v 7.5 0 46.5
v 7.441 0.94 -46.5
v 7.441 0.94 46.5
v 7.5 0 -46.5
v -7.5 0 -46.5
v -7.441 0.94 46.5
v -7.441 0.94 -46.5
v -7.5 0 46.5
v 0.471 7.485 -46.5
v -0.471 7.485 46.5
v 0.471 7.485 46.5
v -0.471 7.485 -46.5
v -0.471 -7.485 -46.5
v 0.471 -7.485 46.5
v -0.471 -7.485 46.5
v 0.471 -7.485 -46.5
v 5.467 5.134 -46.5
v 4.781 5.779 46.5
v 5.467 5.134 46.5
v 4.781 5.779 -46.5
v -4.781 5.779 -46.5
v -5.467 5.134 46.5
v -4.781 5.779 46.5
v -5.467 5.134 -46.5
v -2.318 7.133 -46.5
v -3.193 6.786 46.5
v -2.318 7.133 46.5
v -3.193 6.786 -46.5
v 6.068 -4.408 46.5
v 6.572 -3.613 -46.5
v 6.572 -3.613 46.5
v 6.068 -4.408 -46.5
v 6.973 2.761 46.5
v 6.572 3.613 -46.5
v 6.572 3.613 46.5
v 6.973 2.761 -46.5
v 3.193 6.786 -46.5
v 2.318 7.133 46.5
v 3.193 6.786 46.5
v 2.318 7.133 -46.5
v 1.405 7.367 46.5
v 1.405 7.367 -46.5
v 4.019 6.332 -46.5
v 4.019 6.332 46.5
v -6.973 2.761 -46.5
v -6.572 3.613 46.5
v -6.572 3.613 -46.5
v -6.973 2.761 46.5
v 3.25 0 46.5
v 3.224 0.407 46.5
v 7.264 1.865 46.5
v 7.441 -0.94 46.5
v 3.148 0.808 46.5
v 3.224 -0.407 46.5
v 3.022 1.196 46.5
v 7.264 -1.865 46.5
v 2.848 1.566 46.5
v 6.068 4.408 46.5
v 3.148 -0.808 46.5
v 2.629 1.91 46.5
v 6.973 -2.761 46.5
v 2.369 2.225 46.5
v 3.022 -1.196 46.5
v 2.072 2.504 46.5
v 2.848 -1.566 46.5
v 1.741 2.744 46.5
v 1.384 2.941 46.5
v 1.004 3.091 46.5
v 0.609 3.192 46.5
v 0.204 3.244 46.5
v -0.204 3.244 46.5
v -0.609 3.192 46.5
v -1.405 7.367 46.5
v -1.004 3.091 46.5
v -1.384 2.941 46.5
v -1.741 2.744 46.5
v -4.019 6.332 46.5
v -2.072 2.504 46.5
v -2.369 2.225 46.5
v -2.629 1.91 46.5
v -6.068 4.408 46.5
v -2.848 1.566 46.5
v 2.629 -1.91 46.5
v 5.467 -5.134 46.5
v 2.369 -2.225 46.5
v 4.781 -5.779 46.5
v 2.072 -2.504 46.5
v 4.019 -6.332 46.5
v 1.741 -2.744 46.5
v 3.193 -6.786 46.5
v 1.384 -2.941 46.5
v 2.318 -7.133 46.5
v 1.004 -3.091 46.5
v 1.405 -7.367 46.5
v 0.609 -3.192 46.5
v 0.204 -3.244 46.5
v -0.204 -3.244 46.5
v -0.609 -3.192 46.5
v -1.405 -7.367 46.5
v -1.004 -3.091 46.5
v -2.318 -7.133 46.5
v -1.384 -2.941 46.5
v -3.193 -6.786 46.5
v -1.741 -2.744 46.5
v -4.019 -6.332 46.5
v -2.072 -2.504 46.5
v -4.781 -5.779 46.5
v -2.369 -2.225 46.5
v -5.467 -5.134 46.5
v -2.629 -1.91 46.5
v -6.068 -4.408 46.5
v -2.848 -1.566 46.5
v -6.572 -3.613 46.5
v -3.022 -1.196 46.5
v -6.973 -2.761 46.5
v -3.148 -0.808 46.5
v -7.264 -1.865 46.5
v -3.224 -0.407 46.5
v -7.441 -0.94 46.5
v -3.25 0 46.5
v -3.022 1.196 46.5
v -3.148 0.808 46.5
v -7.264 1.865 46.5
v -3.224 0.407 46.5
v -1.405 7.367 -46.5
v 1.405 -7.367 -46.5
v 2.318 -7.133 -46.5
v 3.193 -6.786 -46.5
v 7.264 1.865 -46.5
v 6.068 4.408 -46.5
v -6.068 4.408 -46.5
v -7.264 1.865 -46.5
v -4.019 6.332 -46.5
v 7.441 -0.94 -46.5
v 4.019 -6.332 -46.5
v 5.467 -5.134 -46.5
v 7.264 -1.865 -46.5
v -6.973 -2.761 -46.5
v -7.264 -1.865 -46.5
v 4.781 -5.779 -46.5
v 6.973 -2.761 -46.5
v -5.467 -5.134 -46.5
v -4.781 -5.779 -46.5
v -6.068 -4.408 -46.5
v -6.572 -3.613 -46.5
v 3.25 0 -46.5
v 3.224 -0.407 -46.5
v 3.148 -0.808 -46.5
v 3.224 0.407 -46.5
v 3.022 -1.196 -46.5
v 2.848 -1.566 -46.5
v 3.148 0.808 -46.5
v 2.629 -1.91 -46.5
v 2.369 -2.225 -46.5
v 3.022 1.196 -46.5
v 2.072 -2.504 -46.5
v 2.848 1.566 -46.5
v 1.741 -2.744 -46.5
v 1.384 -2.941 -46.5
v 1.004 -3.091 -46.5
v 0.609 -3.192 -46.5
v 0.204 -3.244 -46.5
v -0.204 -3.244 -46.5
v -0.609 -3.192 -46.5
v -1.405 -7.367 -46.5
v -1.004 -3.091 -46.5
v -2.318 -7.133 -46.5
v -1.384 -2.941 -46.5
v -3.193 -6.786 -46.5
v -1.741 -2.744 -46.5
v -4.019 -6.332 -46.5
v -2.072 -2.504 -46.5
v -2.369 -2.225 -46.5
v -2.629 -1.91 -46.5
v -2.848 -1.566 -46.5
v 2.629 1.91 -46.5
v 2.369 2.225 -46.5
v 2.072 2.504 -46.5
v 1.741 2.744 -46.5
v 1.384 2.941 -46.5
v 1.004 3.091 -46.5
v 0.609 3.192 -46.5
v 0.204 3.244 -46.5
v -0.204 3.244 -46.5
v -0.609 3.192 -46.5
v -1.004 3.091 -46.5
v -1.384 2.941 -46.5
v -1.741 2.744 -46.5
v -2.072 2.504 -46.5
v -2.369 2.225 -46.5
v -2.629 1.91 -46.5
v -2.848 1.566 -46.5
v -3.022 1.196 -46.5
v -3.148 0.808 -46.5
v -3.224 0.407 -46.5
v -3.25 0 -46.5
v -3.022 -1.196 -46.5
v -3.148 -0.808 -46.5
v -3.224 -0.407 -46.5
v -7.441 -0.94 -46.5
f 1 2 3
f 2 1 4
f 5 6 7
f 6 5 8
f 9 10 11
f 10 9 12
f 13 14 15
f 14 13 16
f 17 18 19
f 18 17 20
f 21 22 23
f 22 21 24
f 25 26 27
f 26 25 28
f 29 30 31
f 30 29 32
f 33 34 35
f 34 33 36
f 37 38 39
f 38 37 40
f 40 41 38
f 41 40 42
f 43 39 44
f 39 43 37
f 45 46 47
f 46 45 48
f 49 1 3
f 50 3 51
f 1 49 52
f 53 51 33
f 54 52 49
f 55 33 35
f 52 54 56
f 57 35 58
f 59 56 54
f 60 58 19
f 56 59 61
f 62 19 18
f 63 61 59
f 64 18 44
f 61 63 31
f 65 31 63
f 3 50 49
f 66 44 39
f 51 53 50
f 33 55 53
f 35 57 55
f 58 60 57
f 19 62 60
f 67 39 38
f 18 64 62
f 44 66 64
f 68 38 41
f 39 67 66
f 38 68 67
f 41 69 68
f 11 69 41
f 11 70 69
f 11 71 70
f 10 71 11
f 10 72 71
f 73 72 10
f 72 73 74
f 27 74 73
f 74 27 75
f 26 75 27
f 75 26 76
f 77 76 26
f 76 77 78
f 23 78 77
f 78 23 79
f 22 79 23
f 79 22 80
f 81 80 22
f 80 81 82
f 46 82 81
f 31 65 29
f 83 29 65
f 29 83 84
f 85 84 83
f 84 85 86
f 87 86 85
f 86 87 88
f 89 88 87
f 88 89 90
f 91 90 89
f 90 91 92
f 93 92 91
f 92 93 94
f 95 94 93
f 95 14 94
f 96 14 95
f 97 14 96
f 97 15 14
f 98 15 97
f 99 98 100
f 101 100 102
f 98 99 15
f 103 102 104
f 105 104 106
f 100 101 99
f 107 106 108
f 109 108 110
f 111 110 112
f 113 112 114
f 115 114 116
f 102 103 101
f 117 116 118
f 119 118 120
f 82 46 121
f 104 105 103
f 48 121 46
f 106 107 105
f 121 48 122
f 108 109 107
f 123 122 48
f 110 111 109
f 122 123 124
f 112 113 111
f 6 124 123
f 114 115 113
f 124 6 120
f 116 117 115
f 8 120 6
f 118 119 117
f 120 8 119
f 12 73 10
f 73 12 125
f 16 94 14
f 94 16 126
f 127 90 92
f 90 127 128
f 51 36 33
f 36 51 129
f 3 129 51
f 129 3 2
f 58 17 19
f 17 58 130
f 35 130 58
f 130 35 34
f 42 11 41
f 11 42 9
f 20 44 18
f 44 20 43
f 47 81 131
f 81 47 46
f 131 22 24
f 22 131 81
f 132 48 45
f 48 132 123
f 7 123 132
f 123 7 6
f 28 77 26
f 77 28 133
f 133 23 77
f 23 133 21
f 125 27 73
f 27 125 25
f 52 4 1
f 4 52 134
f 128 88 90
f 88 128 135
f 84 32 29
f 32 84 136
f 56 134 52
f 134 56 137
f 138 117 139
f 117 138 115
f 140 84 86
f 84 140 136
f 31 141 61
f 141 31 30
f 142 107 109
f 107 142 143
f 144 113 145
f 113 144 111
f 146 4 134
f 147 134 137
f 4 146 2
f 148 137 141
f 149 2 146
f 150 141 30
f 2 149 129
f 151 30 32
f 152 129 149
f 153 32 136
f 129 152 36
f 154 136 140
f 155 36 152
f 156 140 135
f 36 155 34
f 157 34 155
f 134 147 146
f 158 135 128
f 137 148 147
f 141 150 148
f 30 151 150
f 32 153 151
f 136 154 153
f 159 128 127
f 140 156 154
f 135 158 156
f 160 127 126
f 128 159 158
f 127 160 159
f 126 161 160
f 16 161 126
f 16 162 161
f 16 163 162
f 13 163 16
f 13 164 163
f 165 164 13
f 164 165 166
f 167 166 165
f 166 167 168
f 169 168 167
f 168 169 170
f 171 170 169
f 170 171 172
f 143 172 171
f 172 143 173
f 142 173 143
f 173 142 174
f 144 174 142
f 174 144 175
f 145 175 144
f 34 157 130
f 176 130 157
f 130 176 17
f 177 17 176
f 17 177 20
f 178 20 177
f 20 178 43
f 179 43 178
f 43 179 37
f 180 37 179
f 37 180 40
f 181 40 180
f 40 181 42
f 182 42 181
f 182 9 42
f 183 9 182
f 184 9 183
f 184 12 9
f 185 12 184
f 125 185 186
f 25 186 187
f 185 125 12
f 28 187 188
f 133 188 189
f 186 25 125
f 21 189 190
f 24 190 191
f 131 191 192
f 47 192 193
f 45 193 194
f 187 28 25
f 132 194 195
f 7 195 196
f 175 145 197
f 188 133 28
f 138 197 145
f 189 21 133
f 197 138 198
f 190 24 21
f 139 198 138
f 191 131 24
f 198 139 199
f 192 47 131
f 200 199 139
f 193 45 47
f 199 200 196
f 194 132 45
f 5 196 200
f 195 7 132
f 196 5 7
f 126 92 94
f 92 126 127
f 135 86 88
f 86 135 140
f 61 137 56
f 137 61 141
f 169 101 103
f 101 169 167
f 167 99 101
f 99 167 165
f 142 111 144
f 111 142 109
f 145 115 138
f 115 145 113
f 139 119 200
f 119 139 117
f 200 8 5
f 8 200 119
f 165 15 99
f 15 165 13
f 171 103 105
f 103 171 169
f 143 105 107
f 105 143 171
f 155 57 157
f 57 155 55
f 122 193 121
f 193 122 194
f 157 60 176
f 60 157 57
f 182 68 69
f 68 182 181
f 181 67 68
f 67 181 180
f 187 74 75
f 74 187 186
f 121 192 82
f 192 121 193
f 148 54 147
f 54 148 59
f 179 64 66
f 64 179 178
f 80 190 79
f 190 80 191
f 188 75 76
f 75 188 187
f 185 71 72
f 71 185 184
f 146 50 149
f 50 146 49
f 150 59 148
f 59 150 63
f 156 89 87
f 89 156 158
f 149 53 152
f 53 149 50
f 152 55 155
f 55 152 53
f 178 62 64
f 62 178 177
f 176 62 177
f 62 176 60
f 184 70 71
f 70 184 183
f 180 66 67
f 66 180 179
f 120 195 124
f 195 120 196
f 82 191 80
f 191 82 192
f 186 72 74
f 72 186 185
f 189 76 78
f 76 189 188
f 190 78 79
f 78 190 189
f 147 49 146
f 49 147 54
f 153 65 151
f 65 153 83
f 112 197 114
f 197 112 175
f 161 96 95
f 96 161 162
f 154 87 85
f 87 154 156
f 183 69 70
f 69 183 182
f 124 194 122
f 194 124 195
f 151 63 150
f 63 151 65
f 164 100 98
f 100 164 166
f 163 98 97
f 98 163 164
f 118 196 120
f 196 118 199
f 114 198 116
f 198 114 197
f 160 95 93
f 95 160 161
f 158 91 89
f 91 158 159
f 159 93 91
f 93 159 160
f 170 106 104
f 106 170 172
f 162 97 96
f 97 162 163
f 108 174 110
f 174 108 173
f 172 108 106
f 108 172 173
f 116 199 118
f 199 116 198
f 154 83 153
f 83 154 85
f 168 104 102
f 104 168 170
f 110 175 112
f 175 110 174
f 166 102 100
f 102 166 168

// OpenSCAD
$fn = 50;


difference() {
	union() {
		translate(v = [0, 0, -46.5000000000]) {
			cylinder(h = 93, r = 7.5000000000);
		}
	}
	union() {
		translate(v = [0, 0, -100.0000000000]) {
			cylinder(h = 200, r = 3.2500000000);
		}
	}
}
